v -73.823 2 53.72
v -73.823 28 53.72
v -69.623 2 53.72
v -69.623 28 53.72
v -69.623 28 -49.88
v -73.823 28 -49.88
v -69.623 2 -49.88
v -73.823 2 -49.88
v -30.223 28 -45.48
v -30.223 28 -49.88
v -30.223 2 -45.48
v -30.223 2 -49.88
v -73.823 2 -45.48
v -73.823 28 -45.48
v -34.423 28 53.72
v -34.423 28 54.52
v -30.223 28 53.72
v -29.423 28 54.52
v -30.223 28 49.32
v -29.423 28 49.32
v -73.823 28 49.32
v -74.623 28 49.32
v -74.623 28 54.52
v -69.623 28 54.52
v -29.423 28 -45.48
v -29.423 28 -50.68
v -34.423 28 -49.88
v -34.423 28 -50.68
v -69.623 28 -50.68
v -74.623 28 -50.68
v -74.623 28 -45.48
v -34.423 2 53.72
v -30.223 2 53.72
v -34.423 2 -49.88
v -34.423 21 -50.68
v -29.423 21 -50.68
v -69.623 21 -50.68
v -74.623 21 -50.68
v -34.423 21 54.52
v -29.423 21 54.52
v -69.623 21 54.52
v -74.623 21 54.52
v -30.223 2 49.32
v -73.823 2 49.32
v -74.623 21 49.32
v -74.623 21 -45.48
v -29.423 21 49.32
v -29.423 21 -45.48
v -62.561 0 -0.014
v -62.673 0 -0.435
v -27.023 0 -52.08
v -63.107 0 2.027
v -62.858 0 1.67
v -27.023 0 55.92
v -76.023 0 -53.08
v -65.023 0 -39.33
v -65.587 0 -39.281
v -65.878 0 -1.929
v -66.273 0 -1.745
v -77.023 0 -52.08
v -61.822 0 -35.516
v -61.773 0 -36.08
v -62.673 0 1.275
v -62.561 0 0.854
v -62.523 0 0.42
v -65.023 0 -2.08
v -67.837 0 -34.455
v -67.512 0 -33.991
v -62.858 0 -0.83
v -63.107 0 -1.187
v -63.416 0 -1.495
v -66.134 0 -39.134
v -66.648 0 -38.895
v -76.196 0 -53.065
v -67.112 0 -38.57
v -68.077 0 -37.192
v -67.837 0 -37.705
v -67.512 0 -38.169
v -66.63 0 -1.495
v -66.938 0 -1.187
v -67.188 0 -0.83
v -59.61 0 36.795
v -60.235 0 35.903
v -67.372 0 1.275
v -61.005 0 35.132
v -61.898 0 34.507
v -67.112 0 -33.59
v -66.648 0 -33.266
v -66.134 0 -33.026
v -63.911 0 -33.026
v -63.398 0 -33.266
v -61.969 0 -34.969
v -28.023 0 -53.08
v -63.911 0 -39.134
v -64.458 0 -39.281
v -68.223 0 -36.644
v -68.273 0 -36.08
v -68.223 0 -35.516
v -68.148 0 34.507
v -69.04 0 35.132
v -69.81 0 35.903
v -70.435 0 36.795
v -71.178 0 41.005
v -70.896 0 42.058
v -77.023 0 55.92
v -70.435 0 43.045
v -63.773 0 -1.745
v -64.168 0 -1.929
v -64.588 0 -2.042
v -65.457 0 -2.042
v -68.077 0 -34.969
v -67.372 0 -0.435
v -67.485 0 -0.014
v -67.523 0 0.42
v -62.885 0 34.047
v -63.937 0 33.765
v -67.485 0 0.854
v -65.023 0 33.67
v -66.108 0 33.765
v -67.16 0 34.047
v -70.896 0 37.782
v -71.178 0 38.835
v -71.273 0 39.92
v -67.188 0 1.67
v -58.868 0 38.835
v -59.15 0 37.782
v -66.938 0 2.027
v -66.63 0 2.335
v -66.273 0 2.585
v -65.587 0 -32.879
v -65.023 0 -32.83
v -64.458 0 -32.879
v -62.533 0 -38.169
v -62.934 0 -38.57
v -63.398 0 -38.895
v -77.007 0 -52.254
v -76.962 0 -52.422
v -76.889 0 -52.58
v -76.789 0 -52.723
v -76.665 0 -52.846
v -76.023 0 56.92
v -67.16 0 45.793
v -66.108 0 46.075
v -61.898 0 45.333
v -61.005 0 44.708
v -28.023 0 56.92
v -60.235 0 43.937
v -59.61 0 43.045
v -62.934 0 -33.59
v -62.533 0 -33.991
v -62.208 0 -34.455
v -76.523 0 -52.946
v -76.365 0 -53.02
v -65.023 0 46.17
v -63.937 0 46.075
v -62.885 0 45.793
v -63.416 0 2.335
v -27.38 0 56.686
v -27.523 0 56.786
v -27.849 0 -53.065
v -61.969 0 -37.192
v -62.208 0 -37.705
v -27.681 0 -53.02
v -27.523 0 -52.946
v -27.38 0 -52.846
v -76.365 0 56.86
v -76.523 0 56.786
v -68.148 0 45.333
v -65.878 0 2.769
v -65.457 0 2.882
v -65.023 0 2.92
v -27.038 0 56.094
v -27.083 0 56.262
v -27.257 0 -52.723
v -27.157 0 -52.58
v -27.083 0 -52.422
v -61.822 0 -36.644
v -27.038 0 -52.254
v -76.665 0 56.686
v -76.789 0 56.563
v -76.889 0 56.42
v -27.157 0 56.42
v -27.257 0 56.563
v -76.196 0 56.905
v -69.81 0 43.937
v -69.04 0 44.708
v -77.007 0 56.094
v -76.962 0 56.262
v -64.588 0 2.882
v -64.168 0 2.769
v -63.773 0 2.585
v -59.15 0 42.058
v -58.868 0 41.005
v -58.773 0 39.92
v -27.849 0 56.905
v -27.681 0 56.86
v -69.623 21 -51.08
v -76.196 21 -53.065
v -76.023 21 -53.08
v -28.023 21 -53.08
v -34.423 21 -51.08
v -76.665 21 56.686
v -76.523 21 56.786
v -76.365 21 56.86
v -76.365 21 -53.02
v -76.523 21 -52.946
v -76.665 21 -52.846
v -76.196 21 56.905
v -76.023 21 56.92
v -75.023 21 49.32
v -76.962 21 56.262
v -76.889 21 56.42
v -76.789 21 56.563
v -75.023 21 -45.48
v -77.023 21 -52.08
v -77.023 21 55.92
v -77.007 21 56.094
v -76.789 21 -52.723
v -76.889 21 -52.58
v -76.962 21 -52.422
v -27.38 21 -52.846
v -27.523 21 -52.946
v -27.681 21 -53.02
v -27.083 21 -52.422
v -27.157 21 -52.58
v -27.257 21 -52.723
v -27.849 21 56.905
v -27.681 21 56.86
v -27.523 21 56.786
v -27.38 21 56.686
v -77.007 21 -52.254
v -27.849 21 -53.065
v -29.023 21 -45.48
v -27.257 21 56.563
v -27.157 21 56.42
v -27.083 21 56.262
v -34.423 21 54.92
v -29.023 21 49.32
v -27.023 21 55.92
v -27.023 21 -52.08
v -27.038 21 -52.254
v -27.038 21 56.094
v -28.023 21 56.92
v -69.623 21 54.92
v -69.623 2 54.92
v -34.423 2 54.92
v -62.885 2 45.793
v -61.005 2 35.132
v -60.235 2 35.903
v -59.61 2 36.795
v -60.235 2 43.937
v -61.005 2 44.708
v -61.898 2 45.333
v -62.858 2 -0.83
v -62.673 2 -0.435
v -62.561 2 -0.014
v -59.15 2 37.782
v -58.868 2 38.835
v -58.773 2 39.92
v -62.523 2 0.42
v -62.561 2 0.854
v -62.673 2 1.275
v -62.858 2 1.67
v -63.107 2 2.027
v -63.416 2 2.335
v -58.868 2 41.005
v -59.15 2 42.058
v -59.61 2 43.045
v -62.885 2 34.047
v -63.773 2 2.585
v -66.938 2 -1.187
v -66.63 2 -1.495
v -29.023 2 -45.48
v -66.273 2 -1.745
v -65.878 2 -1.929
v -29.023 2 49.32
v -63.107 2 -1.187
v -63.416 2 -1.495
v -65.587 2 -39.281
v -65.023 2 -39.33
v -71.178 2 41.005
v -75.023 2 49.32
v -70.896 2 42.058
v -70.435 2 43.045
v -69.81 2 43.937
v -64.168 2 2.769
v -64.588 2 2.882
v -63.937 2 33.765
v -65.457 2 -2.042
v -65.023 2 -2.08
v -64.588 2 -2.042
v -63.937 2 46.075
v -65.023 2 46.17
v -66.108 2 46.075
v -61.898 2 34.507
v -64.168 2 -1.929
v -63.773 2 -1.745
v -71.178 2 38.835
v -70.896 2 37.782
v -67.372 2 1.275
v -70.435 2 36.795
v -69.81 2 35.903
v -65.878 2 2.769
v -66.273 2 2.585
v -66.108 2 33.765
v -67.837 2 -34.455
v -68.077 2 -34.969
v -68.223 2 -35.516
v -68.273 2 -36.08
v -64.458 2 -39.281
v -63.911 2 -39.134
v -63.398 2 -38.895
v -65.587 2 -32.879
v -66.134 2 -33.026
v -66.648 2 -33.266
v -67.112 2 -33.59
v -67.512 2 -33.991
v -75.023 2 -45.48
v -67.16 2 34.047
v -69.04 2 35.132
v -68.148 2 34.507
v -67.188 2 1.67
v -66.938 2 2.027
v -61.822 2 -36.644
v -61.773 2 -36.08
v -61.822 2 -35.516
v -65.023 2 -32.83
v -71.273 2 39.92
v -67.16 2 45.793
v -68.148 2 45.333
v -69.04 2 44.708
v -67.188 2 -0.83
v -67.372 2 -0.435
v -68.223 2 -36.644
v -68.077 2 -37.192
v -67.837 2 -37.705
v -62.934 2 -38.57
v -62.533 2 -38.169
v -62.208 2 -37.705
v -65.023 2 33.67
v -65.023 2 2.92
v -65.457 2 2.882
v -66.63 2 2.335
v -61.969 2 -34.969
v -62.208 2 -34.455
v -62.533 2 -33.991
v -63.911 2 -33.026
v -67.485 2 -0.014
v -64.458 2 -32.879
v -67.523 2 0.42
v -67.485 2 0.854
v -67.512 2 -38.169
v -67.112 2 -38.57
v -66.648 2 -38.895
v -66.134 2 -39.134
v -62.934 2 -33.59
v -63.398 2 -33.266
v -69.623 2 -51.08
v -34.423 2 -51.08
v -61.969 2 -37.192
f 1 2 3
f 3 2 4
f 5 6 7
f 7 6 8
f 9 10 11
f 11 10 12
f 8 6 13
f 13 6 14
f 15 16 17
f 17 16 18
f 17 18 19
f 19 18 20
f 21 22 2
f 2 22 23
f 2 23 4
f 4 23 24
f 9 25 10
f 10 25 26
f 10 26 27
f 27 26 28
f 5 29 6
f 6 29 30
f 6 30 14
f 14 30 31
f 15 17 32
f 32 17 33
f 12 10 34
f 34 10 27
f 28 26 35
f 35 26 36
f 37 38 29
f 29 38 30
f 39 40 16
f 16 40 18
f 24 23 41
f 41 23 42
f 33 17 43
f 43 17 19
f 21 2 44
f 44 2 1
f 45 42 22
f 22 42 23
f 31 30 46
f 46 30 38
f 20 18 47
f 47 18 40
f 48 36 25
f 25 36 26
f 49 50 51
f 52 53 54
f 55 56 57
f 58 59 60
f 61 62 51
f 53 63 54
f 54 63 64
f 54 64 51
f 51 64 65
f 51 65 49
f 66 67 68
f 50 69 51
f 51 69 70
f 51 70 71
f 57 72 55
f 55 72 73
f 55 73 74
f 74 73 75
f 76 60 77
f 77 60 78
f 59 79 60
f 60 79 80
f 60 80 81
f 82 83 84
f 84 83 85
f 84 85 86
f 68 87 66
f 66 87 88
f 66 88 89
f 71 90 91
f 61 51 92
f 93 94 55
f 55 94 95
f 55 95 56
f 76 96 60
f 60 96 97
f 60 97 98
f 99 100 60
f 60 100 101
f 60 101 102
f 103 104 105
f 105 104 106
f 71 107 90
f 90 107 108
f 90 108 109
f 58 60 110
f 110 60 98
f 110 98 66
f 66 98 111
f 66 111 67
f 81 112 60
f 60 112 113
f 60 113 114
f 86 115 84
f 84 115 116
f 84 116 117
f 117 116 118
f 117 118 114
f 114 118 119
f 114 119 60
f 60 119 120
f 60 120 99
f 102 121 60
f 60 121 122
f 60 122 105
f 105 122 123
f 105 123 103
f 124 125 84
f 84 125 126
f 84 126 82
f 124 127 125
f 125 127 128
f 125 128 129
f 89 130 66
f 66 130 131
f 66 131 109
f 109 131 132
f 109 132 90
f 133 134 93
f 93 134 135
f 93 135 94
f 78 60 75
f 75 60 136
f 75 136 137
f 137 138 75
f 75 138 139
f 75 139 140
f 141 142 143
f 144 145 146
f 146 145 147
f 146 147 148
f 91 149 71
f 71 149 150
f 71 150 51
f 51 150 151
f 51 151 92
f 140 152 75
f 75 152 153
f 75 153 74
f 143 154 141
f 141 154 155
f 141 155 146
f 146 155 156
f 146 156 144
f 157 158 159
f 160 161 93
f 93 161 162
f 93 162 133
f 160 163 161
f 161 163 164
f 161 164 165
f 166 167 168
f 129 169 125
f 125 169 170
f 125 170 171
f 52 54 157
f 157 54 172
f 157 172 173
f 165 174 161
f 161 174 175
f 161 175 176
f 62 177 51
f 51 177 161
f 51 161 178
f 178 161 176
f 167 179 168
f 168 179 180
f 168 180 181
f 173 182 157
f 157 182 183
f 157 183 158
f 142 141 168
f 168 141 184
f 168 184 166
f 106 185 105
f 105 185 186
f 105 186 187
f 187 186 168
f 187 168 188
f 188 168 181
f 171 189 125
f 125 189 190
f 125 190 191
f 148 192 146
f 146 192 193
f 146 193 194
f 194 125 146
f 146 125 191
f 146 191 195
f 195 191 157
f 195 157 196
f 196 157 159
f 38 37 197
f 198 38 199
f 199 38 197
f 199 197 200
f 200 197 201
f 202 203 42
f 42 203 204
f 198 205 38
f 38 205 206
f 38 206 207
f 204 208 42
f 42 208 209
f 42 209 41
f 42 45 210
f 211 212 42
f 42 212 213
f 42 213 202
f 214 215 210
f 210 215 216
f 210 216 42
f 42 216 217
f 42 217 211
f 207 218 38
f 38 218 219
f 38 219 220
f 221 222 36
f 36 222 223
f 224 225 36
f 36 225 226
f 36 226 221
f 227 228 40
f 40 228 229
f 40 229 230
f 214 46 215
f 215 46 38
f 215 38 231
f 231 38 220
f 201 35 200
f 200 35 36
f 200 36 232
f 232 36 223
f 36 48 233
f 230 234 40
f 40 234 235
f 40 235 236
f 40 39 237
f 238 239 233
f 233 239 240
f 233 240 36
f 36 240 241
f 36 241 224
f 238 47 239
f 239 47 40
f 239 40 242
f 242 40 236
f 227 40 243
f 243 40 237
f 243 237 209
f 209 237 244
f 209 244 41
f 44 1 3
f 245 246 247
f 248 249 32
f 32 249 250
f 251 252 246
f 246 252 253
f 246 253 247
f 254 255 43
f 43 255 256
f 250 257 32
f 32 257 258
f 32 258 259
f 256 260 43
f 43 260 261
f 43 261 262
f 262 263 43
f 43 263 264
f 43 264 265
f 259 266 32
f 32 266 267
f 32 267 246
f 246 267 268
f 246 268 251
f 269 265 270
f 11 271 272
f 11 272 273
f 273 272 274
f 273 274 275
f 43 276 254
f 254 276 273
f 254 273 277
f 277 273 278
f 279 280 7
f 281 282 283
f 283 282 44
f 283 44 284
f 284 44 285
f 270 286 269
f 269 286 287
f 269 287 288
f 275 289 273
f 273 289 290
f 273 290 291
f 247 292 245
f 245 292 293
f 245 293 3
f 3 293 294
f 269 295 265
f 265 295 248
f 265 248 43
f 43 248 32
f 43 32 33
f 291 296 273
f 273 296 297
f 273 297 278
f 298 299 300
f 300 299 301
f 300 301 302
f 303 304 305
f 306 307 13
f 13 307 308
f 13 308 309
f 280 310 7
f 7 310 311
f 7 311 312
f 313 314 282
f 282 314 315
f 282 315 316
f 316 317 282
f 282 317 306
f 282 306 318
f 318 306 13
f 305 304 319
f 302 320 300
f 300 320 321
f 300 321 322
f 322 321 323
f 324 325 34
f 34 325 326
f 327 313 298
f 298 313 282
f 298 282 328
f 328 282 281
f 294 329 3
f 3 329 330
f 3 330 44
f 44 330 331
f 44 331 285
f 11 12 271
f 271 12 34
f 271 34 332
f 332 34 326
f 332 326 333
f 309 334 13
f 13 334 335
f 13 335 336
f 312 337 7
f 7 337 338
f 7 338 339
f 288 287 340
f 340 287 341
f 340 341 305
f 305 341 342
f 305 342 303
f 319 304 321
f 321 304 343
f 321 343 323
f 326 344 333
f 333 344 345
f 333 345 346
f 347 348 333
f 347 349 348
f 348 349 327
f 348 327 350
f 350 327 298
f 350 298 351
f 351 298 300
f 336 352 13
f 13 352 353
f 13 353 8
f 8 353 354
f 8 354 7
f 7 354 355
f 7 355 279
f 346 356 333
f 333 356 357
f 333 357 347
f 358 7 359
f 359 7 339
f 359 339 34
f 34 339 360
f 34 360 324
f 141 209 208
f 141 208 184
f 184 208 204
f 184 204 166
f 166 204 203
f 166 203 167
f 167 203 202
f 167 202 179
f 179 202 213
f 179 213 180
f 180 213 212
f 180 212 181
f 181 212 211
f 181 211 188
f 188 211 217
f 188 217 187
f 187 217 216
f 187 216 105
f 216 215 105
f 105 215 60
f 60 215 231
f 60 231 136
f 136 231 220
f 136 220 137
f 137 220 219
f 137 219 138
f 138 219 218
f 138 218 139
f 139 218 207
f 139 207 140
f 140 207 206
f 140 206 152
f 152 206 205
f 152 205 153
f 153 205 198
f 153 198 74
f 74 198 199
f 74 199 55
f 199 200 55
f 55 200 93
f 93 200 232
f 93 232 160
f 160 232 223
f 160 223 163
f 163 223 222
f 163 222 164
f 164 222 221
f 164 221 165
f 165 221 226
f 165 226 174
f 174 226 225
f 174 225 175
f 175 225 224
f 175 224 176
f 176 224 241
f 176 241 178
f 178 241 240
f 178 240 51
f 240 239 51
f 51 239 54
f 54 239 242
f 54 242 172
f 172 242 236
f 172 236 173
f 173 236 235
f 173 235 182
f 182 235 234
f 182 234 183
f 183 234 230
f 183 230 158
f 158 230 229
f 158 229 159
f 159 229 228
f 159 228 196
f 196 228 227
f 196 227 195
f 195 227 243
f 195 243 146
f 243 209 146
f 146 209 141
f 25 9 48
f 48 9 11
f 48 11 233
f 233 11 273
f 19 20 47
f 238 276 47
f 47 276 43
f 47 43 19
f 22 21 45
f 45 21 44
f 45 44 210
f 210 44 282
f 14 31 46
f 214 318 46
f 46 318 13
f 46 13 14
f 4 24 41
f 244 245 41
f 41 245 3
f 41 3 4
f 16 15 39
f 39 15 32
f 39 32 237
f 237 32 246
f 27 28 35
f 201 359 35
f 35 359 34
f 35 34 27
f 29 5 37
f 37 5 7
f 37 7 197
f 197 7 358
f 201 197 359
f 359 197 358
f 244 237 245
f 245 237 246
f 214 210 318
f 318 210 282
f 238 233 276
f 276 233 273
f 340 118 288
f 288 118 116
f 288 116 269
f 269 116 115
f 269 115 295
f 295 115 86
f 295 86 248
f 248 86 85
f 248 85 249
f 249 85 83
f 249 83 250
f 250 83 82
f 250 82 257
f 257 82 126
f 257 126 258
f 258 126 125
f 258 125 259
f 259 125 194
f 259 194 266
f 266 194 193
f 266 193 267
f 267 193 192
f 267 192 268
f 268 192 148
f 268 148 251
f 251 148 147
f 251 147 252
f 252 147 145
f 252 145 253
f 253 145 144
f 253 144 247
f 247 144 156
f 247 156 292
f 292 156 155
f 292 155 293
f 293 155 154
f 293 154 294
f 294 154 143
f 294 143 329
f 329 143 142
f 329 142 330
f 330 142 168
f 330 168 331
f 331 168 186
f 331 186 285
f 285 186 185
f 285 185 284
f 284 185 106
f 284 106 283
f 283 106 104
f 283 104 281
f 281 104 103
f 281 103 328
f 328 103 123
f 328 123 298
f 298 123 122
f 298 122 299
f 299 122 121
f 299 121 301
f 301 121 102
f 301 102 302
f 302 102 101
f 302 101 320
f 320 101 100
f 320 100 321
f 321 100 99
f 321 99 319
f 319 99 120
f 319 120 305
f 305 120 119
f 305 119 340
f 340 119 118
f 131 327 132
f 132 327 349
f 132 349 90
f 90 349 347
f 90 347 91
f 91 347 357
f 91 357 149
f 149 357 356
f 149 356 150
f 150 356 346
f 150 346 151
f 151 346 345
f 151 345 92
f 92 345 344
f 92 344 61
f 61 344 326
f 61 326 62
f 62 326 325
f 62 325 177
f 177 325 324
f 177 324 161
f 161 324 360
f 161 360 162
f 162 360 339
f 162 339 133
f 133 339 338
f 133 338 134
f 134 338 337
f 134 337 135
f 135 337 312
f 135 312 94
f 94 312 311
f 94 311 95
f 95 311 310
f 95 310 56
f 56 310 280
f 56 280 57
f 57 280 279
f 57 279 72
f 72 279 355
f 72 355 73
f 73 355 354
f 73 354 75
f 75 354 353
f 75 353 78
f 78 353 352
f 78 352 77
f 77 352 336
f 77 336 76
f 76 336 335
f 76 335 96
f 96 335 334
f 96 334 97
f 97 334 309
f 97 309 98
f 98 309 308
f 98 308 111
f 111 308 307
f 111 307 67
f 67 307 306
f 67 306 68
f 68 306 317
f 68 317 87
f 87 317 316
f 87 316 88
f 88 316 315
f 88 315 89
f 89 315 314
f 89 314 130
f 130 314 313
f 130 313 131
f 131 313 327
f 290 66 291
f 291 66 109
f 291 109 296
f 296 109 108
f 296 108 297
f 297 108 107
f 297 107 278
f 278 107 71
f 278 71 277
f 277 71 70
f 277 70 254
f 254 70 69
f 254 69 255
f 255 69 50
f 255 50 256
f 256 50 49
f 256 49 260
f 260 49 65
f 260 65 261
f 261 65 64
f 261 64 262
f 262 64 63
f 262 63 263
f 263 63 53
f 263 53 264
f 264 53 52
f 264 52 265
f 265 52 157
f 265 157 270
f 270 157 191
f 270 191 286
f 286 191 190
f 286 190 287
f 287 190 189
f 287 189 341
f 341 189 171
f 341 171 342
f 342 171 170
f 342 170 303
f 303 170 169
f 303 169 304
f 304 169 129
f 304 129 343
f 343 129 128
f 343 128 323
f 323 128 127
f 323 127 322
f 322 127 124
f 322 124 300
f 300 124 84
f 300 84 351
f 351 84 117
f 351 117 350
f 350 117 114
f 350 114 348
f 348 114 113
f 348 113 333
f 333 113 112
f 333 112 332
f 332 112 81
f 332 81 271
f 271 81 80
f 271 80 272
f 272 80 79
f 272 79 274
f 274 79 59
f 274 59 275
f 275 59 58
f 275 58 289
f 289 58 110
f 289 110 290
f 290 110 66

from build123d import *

# Parameters (mm, degrees)
SKETCH1_W                = 50
SKETCH1_H                = 110
BOSS_EXTRUDE1_DEPTH      = 2
SKETCH2_W                = 50
SKETCH2_H                = 110
SKETCH2_W_2              = 46
SKETCH2_H_2              = 106
BOSS_EXTRUDE3_DEPTH      = 11
SKETCH3_R                = 1.2
BOSS_EXTRUDE4_DEPTH      = 11
SKETCH4_W                = 52
SKETCH4_H                = 112
SKETCH4_W_2              = 50
SKETCH4_H_2              = 110
EXTRUDE_THIN1_DEPTH      = 13
FILLET2_R                = 2
EXTRUDE_THIN3_DEPTH      = 3
SKETCH6_R                = 1.8
BOSS_EXTRUDE5_DEPTH      = 2.8
SKETCH8_W                = 8
SKETCH8_H                = 3.6
CUT_EXTRUDE2_DEPTH       = 12.8
SKETCH11_W               = 13.1
SKETCH11_H               = 5.8
CUT_EXTRUDE5_DEPTH       = 3
SKETCH12_W               = 70
SKETCH12_H               = 9.973266712
CUT_EXTRUDE6_DEPTH       = 130
SKETCH13_W               = 46
SKETCH13_H               = 106
CUT_EXTRUDE7_DEPTH       = 130
SKETCH15_W               = 46
SKETCH15_H               = 106
BOSS_EXTRUDE6_DEPTH      = 60
SKETCH16_W               = 71.739839436
SKETCH16_H               = 55.166081701
CUT_EXTRUDE8_DEPTH       = 130
SKETCH17_W               = 110.8
SKETCH17_H               = 170.8
SKETCH17_W_2             = 48.4
SKETCH17_H_2             = 108.4
CUT_EXTRUDE_THIN1_DEPTH  = 3
SKETCH18_W               = 3
SKETCH18_H               = 13.1
BOSS_EXTRUDE7_DEPTH      = 7
SKETCH19_W               = 3
SKETCH19_H               = 8
BOSS_EXTRUDE8_DEPTH      = 4.5
SKETCH20_R               = 6
SKETCH20_R_2             = 3
CUT_EXTRUDE9_DEPTH       = 4.5
CUT_EXTRUDE_THIN3_DEPTH  = 80
SKETCH24_W               = 48.4
SKETCH24_H               = 3
CUT_EXTRUDE10_DEPTH      = 140
SKETCH26_W               = 46
SKETCH26_H               = 106
SKETCH26_W_2             = 43.6
SKETCH26_H_2             = 103.6
EXTRUDE_THIN5_DEPTH      = 26
SKETCH27_W               = 47.6
SKETCH27_H               = 107.6
SKETCH27_W_2             = 45.2
SKETCH27_H_2             = 105.2
CUT_EXTRUDE_THIN4_DEPTH  = 7
SKETCH28_W               = 94.8
SKETCH28_H               = 7
CUT_EXTRUDE11_DEPTH      = 7
CUT_EXTRUDE11_DEPTH_BACK = 87
SKETCH29_W               = 35.2
SKETCH29_H               = 7
CUT_EXTRUDE12_DEPTH      = 87
CUT_EXTRUDE12_DEPTH_BACK = 137
SKETCH30_W               = 1.2
SKETCH30_H               = 94.8
SKETCH30_W_2             = 35.2
SKETCH30_H_2             = 1.2
CUT_EXTRUDE13_DEPTH      = 19
SKETCH31_R               = 6.25
CUT_EXTRUDE14_DEPTH      = 10
CUT_EXTRUDE14_DEPTH_BACK = 10
SKETCH32_R               = 3.25
CUT_EXTRUDE17_DEPTH      = 10
SKETCH35_R               = 2.5
CUT_EXTRUDE18_DEPTH      = 10
CUT_EXTRUDE18_DEPTH_BACK = 10


with BuildPart() as part:
    # Sketch1 → Boss-Extrude1 (new body)
    with BuildSketch(Plane(origin=(0, 0, 0), x_dir=(1, 0, 0), z_dir=(0, 1, 0))):
        with Locations((-52.022587269, -1.919917864)):
            Rectangle(SKETCH1_W, SKETCH1_H)
    extrude(amount=BOSS_EXTRUDE1_DEPTH)

    # Sketch2 → Boss-Extrude3 (add)
    with BuildSketch(Plane(origin=(0, 2, 0), x_dir=(1, 0, 0), z_dir=(0, 1, 0))):
        with Locations((-52.022587269, -1.919917864)):
            Rectangle(SKETCH2_W, SKETCH2_H)
        with Locations((-52.022587269, -1.919917864)):
            Rectangle(SKETCH2_W_2, SKETCH2_H_2, mode=Mode.SUBTRACT)
    extrude(amount=BOSS_EXTRUDE3_DEPTH)

    # Sketch3 → Boss-Extrude4 (add)
    with BuildSketch(Plane(origin=(0, 2, 0), x_dir=(1, 0, 0), z_dir=(0, 1, 0))):
        with Locations((-31.022587269, 42.380082136)):
            Circle(SKETCH3_R)
        with Locations((-31.022587269, -52.919917864)):
            Circle(SKETCH3_R)
        with Locations((-56.322587269, 42.380082136)):
            Circle(SKETCH3_R)
        with Locations((-56.322587269, -52.919917864)):
            Circle(SKETCH3_R)
    extrude(amount=BOSS_EXTRUDE4_DEPTH)

    # Sketch4 → Extrude-Thin1 (add)
    with BuildSketch(Plane(origin=(0, 13, 0), x_dir=(1, 0, 0), z_dir=(0, 1, 0))):
        with Locations((-52.022587269, -1.919917864)):
            Rectangle(SKETCH4_W, SKETCH4_H)
        with Locations((-52.022587269, -1.919917864)):
            Rectangle(SKETCH4_W_2, SKETCH4_H_2, mode=Mode.SUBTRACT)
    extrude(amount=-EXTRUDE_THIN1_DEPTH)

    # Fillet2
    fillet2_edges = [part.edges().sort_by_distance(p)[0] for p in [
        (-26.022587269, 6.5, -54.080082136),
        (-26.022587269, 6.5, 57.919917864),
        (-78.022587269, 6.5, 57.919917864),
        (-78.022587269, 6.5, -54.080082136),
    ]]
    fillet(fillet2_edges, radius=FILLET2_R)

    # Sketch5 → Extrude-Thin3 (add)
    with BuildSketch(Plane(origin=(0, 13, 0), x_dir=(1, 0, 0), z_dir=(0, 1, 0))):
        with BuildLine():
            Line((-28.022587269, 54.080082136), (-76.022587269, 54.080082136))
            ThreePointArc((-76.022587269, 54.080082136), (-77.436800831, 53.494295698), (-78.022587269, 52.080082136))
            Line((-78.022587269, 52.080082136), (-78.022587269, -55.919917864))
            ThreePointArc((-78.022587269, -55.919917864), (-77.436800831, -57.334131427), (-76.022587269, -57.919917864))
            Line((-76.022587269, -57.919917864), (-28.022587269, -57.919917864))
            ThreePointArc((-28.022587269, -57.919917864), (-26.608373707, -57.334131427), (-26.022587269, -55.919917864))
            Line((-26.022587269, -55.919917864), (-26.022587269, 52.080082136))
            ThreePointArc((-26.022587269, 52.080082136), (-26.608373707, 53.494295698), (-28.022587269, 54.080082136))
        make_face()
        with BuildLine():
            Line((-28.022587269, 52.880082136), (-76.022587269, 52.880082136))
            ThreePointArc((-76.022587269, 52.880082136), (-76.588272694, 52.64576756), (-76.822587269, 52.080082136))
            Line((-76.822587269, 52.080082136), (-76.822587269, -55.919917864))
            ThreePointArc((-76.822587269, -55.919917864), (-76.588272694, -56.485603289), (-76.022587269, -56.719917864))
            Line((-76.022587269, -56.719917864), (-28.022587269, -56.719917864))
            ThreePointArc((-28.022587269, -56.719917864), (-27.456901844, -56.485603289), (-27.222587269, -55.919917864))
            Line((-27.222587269, -55.919917864), (-27.222587269, 52.080082136))
            ThreePointArc((-27.222587269, 52.080082136), (-27.456901844, 52.64576756), (-28.022587269, 52.880082136))
        make_face(mode=Mode.SUBTRACT)
    extrude(amount=EXTRUDE_THIN3_DEPTH)

    # Sketch6 → Boss-Extrude5 (add)
    with BuildSketch(Plane(origin=(0, 2, 0), x_dir=(1, 0, 0), z_dir=(0, 1, 0))):
        with Locations((-56.322587269, -52.919917864)):
            Circle(SKETCH6_R)
        with Locations((-31.022587269, -52.919917864)):
            Circle(SKETCH6_R)
        with Locations((-56.322587269, 42.380082136)):
            Circle(SKETCH6_R)
        with Locations((-31.022587269, 42.380082136)):
            Circle(SKETCH6_R)
    extrude(amount=BOSS_EXTRUDE5_DEPTH)

    # Sketch8 → Cut-Extrude2 (cut)
    with BuildSketch(Plane(origin=(-26.022587269, 0, 0), x_dir=(0, 0, -1), z_dir=(1, 0, 0))):
        with Locations((-44.619917864, 3.8)):
            Rectangle(SKETCH8_W, SKETCH8_H)
    extrude(amount=-CUT_EXTRUDE2_DEPTH, mode=Mode.SUBTRACT)

    # Sketch11 → Cut-Extrude5 (cut)
    with BuildSketch(Plane.ZY.offset(78.022587269)):
        with Locations((-43.530082136, 4.9)):
            Rectangle(SKETCH11_W, SKETCH11_H)
    extrude(amount=-CUT_EXTRUDE5_DEPTH, mode=Mode.SUBTRACT)

    # Sketch12 → Cut-Extrude6 (cut)
    with BuildSketch(Plane.XY.offset(57.919917864)):
        with Locations((-53.022587269, 15.377484965)):
            Rectangle(SKETCH12_W, SKETCH12_H)
    extrude(amount=-CUT_EXTRUDE6_DEPTH, mode=Mode.SUBTRACT)

    # Sketch13 → Cut-Extrude7 (cut)
    with BuildSketch(Plane(origin=(0, 2, 0), x_dir=(1, 0, 0), z_dir=(0, 1, 0))):
        with Locations((-52.022587269, -1.919917864)):
            Rectangle(SKETCH13_W, SKETCH13_H)
    extrude(amount=CUT_EXTRUDE7_DEPTH, mode=Mode.SUBTRACT)

    # Sketch15 → Boss-Extrude6 (add)
    with BuildSketch(Plane(origin=(0, 10.390851609, 0), x_dir=(1, 0, 0), z_dir=(0, 1, 0))):
        with BuildLine():
            Line((-76.022587269, -57.919917864), (-28.022587269, -57.919917864))
            ThreePointArc((-28.022587269, -57.919917864), (-26.608373707, -57.334131427), (-26.022587269, -55.919917864))
            Line((-26.022587269, -55.919917864), (-26.022587269, 52.080082136))
            ThreePointArc((-26.022587269, 52.080082136), (-26.608373707, 53.494295698), (-28.022587269, 54.080082136))
            Line((-28.022587269, 54.080082136), (-76.022587269, 54.080082136))
            ThreePointArc((-76.022587269, 54.080082136), (-77.436800831, 53.494295698), (-78.022587269, 52.080082136))
            Line((-78.022587269, 52.080082136), (-78.022587269, -55.919917864))
            ThreePointArc((-78.022587269, -55.919917864), (-77.436800831, -57.334131427), (-76.022587269, -57.919917864))
        make_face()
        with Locations((-52.022587269, -1.919917864)):
            Rectangle(SKETCH15_W, SKETCH15_H, mode=Mode.SUBTRACT)
    extrude(amount=BOSS_EXTRUDE6_DEPTH)

    # Sketch16 → Cut-Extrude8 (cut)
    with BuildSketch(Plane.XY.offset(57.919917864)):
        with Locations((-48.522353235, 51.583040851)):
            Rectangle(SKETCH16_W, SKETCH16_H)
    extrude(amount=-CUT_EXTRUDE8_DEPTH, mode=Mode.SUBTRACT)

    # Sketch17 → Cut-Extrude-Thin1 (cut)
    with BuildSketch(Plane(origin=(0, 24, 0), x_dir=(1, 0, 0), z_dir=(0, 1, 0))):
        with Locations((-52.022587269, -1.919917864)):
            Rectangle(SKETCH17_W, SKETCH17_H)
        with Locations((-52.022587269, -1.919917864)):
            Rectangle(SKETCH17_W_2, SKETCH17_H_2, mode=Mode.SUBTRACT)
    extrude(amount=-CUT_EXTRUDE_THIN1_DEPTH, mode=Mode.SUBTRACT)

    # Sketch18 → Boss-Extrude7 (add)
    with BuildSketch(Plane.XZ.offset(-7.8)):
        with Locations((-76.522587269, -43.530082136)):
            Rectangle(SKETCH18_W, SKETCH18_H)
    extrude(amount=BOSS_EXTRUDE7_DEPTH)

    # Sketch19 → Boss-Extrude8 (add)
    with BuildSketch(Plane.XZ.offset(-5.6)):
        with Locations((-27.522587269, 44.619917864)):
            Rectangle(SKETCH19_W, SKETCH19_H)
    extrude(amount=BOSS_EXTRUDE8_DEPTH)

    # Sketch20 → Cut-Extrude9 (cut)
    with BuildSketch(Plane(origin=(0, 2, 0), x_dir=(1, 0, 0), z_dir=(0, 1, 0))):
        with Locations((-65.022587269, -39.919917864)):
            Circle(SKETCH20_R)
        with Locations((-65.022587269, 36.080082136)):
            Circle(SKETCH20_R_2)
    extrude(amount=-CUT_EXTRUDE9_DEPTH, mode=Mode.SUBTRACT)

    # Sketch23 → Cut-Extrude-Thin3 (cut)
    with BuildSketch(Plane(origin=(0, 21, 0), x_dir=(1, 0, 0), z_dir=(0, 1, 0))):
        with BuildLine():
            Line((-87.022587269, 52.080082136), (-87.022587269, -55.919917864))
            ThreePointArc((-87.022587269, -55.919917864), (-83.800761862, -63.698092458), (-76.022587269, -66.919917864))
            Line((-76.022587269, -66.919917864), (-28.022587269, -66.919917864))
            ThreePointArc((-28.022587269, -66.919917864), (-20.244412676, -63.698092458), (-17.022587269, -55.919917864))
            Line((-17.022587269, -55.919917864), (-17.022587269, 52.080082136))
            ThreePointArc((-17.022587269, 52.080082136), (-20.244412676, 59.858256729), (-28.022587269, 63.080082136))
            Line((-28.022587269, 63.080082136), (-76.022587269, 63.080082136))
            ThreePointArc((-76.022587269, 63.080082136), (-83.800761862, 59.858256729), (-87.022587269, 52.080082136))
        make_face()
        with BuildLine():
            Line((-77.022587269, 52.080082136), (-77.022587269, -55.919917864))
            ThreePointArc((-77.022587269, -55.919917864), (-76.72969405, -56.627024646), (-76.022587269, -56.919917864))
            Line((-76.022587269, -56.919917864), (-28.022587269, -56.919917864))
            ThreePointArc((-28.022587269, -56.919917864), (-27.315480488, -56.627024646), (-27.022587269, -55.919917864))
            Line((-27.022587269, -55.919917864), (-27.022587269, 52.080082136))
            ThreePointArc((-27.022587269, 52.080082136), (-27.315480488, 52.787188917), (-28.022587269, 53.080082136))
            Line((-28.022587269, 53.080082136), (-76.022587269, 53.080082136))
            ThreePointArc((-76.022587269, 53.080082136), (-76.72969405, 52.787188917), (-77.022587269, 52.080082136))
        make_face(mode=Mode.SUBTRACT)
    extrude(amount=-CUT_EXTRUDE_THIN3_DEPTH, mode=Mode.SUBTRACT)

    # Sketch24 → Cut-Extrude10 (cut)
    with BuildSketch(Plane.XY.offset(56.119917864)):
        with Locations((-52.022587269, 22.5)):
            Rectangle(SKETCH24_W, SKETCH24_H)
    extrude(amount=-CUT_EXTRUDE10_DEPTH, mode=Mode.SUBTRACT)

    # Sketch26 → Extrude-Thin5 (add)
    with BuildSketch(Plane(origin=(0, 2, 0), x_dir=(1, 0, 0), z_dir=(0, 1, 0))):
        with Locations((-52.022587269, -1.919917864)):
            Rectangle(SKETCH26_W, SKETCH26_H)
        with Locations((-52.022587269, -1.919917864)):
            Rectangle(SKETCH26_W_2, SKETCH26_H_2, mode=Mode.SUBTRACT)
    extrude(amount=EXTRUDE_THIN5_DEPTH)

    # Sketch27 → Cut-Extrude-Thin4 (cut)
    with BuildSketch(Plane(origin=(0, 28, 0), x_dir=(1, 0, 0), z_dir=(0, 1, 0))):
        with Locations((-52.022587269, -1.919917864)):
            Rectangle(SKETCH27_W, SKETCH27_H)
        with Locations((-52.022587269, -1.919917864)):
            Rectangle(SKETCH27_W_2, SKETCH27_H_2, mode=Mode.SUBTRACT)
    extrude(amount=-CUT_EXTRUDE_THIN4_DEPTH, mode=Mode.SUBTRACT)

    # Sketch28 → Cut-Extrude11 (cut, two sides)
    with BuildSketch(Plane(origin=(-29.422587269, 0, 0), x_dir=(0, 0, -1), z_dir=(1, 0, 0))) as cut_extrude11_sk:
        with Locations((-1.919917864, 24.5)):
            Rectangle(SKETCH28_W, SKETCH28_H)
    extrude(amount=CUT_EXTRUDE11_DEPTH, mode=Mode.SUBTRACT)
    extrude(cut_extrude11_sk.sketch, amount=-CUT_EXTRUDE11_DEPTH_BACK, mode=Mode.SUBTRACT)

    # Sketch29 → Cut-Extrude12 (cut, two sides)
    with BuildSketch(Plane.XY.offset(54.519917864)) as cut_extrude12_sk:
        with Locations((-52.022587269, 24.5)):
            Rectangle(SKETCH29_W, SKETCH29_H)
    extrude(amount=CUT_EXTRUDE12_DEPTH, mode=Mode.SUBTRACT)
    extrude(cut_extrude12_sk.sketch, amount=-CUT_EXTRUDE12_DEPTH_BACK, mode=Mode.SUBTRACT)

    # Sketch30 → Cut-Extrude13 (cut)
    with BuildSketch(Plane(origin=(0, 21, 0), x_dir=(1, 0, 0), z_dir=(0, 1, 0))):
        with Locations((-74.422587269, -1.919917864)):
            Rectangle(SKETCH30_W, SKETCH30_H)
        with Locations((-52.022587269, -54.319917864)):
            Rectangle(SKETCH30_W_2, SKETCH30_H_2)
        with Locations((-29.622587269, -1.919917864)):
            Rectangle(SKETCH30_W, SKETCH30_H)
        with Locations((-52.022587269, 50.480082136)):
            Rectangle(SKETCH30_W_2, SKETCH30_H_2)
    extrude(amount=-CUT_EXTRUDE13_DEPTH, mode=Mode.SUBTRACT)

    # Sketch31 → Cut-Extrude14 (cut, two sides)
    with BuildSketch(Plane(origin=(0, 2, 0), x_dir=(1, 0, 0), z_dir=(0, 1, 0))) as cut_extrude14_sk:
        with Locations((-65.022587269, -39.919917864)):
            Circle(SKETCH31_R)
    extrude(amount=CUT_EXTRUDE14_DEPTH, mode=Mode.SUBTRACT)
    extrude(cut_extrude14_sk.sketch, amount=-CUT_EXTRUDE14_DEPTH_BACK, mode=Mode.SUBTRACT)

    # Sketch32 → Cut-Extrude17 (cut)
    with BuildSketch(Plane(origin=(0, 2, 0), x_dir=(1, 0, 0), z_dir=(0, 1, 0))):
        with Locations((-65.022587269, 36.080082136)):
            Circle(SKETCH32_R)
    extrude(amount=-CUT_EXTRUDE17_DEPTH, mode=Mode.SUBTRACT)

    # Sketch35 → Cut-Extrude18 (cut, two sides)
    with BuildSketch(Plane(origin=(0, 2, 0), x_dir=(1, 0, 0), z_dir=(0, 1, 0))) as cut_extrude18_sk:
        with Locations((-65.022587269, -0.419917864)):
            Circle(SKETCH35_R)
    extrude(amount=CUT_EXTRUDE18_DEPTH, mode=Mode.SUBTRACT)
    extrude(cut_extrude18_sk.sketch, amount=-CUT_EXTRUDE18_DEPTH_BACK, mode=Mode.SUBTRACT)


solid = part.part
